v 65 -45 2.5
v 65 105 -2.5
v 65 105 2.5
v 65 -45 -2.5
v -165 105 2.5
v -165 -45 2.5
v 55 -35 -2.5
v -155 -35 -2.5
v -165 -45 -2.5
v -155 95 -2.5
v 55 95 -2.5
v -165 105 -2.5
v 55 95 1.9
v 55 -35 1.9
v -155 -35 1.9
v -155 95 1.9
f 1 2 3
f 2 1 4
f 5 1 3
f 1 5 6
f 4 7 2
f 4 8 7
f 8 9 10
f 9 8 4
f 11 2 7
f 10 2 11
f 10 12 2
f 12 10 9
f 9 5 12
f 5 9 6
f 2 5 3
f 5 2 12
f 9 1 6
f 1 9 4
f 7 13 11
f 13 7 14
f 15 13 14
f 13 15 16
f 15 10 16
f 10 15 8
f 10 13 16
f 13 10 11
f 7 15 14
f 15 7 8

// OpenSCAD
height = 5;

difference(){
	translate([-50, 30, 0])
		cube([130+80+20, 130+20, height], center=true);
	#translate([-50, 30, -0.3])
		cube([130+80, 130, height-0.6], center=true);
}
